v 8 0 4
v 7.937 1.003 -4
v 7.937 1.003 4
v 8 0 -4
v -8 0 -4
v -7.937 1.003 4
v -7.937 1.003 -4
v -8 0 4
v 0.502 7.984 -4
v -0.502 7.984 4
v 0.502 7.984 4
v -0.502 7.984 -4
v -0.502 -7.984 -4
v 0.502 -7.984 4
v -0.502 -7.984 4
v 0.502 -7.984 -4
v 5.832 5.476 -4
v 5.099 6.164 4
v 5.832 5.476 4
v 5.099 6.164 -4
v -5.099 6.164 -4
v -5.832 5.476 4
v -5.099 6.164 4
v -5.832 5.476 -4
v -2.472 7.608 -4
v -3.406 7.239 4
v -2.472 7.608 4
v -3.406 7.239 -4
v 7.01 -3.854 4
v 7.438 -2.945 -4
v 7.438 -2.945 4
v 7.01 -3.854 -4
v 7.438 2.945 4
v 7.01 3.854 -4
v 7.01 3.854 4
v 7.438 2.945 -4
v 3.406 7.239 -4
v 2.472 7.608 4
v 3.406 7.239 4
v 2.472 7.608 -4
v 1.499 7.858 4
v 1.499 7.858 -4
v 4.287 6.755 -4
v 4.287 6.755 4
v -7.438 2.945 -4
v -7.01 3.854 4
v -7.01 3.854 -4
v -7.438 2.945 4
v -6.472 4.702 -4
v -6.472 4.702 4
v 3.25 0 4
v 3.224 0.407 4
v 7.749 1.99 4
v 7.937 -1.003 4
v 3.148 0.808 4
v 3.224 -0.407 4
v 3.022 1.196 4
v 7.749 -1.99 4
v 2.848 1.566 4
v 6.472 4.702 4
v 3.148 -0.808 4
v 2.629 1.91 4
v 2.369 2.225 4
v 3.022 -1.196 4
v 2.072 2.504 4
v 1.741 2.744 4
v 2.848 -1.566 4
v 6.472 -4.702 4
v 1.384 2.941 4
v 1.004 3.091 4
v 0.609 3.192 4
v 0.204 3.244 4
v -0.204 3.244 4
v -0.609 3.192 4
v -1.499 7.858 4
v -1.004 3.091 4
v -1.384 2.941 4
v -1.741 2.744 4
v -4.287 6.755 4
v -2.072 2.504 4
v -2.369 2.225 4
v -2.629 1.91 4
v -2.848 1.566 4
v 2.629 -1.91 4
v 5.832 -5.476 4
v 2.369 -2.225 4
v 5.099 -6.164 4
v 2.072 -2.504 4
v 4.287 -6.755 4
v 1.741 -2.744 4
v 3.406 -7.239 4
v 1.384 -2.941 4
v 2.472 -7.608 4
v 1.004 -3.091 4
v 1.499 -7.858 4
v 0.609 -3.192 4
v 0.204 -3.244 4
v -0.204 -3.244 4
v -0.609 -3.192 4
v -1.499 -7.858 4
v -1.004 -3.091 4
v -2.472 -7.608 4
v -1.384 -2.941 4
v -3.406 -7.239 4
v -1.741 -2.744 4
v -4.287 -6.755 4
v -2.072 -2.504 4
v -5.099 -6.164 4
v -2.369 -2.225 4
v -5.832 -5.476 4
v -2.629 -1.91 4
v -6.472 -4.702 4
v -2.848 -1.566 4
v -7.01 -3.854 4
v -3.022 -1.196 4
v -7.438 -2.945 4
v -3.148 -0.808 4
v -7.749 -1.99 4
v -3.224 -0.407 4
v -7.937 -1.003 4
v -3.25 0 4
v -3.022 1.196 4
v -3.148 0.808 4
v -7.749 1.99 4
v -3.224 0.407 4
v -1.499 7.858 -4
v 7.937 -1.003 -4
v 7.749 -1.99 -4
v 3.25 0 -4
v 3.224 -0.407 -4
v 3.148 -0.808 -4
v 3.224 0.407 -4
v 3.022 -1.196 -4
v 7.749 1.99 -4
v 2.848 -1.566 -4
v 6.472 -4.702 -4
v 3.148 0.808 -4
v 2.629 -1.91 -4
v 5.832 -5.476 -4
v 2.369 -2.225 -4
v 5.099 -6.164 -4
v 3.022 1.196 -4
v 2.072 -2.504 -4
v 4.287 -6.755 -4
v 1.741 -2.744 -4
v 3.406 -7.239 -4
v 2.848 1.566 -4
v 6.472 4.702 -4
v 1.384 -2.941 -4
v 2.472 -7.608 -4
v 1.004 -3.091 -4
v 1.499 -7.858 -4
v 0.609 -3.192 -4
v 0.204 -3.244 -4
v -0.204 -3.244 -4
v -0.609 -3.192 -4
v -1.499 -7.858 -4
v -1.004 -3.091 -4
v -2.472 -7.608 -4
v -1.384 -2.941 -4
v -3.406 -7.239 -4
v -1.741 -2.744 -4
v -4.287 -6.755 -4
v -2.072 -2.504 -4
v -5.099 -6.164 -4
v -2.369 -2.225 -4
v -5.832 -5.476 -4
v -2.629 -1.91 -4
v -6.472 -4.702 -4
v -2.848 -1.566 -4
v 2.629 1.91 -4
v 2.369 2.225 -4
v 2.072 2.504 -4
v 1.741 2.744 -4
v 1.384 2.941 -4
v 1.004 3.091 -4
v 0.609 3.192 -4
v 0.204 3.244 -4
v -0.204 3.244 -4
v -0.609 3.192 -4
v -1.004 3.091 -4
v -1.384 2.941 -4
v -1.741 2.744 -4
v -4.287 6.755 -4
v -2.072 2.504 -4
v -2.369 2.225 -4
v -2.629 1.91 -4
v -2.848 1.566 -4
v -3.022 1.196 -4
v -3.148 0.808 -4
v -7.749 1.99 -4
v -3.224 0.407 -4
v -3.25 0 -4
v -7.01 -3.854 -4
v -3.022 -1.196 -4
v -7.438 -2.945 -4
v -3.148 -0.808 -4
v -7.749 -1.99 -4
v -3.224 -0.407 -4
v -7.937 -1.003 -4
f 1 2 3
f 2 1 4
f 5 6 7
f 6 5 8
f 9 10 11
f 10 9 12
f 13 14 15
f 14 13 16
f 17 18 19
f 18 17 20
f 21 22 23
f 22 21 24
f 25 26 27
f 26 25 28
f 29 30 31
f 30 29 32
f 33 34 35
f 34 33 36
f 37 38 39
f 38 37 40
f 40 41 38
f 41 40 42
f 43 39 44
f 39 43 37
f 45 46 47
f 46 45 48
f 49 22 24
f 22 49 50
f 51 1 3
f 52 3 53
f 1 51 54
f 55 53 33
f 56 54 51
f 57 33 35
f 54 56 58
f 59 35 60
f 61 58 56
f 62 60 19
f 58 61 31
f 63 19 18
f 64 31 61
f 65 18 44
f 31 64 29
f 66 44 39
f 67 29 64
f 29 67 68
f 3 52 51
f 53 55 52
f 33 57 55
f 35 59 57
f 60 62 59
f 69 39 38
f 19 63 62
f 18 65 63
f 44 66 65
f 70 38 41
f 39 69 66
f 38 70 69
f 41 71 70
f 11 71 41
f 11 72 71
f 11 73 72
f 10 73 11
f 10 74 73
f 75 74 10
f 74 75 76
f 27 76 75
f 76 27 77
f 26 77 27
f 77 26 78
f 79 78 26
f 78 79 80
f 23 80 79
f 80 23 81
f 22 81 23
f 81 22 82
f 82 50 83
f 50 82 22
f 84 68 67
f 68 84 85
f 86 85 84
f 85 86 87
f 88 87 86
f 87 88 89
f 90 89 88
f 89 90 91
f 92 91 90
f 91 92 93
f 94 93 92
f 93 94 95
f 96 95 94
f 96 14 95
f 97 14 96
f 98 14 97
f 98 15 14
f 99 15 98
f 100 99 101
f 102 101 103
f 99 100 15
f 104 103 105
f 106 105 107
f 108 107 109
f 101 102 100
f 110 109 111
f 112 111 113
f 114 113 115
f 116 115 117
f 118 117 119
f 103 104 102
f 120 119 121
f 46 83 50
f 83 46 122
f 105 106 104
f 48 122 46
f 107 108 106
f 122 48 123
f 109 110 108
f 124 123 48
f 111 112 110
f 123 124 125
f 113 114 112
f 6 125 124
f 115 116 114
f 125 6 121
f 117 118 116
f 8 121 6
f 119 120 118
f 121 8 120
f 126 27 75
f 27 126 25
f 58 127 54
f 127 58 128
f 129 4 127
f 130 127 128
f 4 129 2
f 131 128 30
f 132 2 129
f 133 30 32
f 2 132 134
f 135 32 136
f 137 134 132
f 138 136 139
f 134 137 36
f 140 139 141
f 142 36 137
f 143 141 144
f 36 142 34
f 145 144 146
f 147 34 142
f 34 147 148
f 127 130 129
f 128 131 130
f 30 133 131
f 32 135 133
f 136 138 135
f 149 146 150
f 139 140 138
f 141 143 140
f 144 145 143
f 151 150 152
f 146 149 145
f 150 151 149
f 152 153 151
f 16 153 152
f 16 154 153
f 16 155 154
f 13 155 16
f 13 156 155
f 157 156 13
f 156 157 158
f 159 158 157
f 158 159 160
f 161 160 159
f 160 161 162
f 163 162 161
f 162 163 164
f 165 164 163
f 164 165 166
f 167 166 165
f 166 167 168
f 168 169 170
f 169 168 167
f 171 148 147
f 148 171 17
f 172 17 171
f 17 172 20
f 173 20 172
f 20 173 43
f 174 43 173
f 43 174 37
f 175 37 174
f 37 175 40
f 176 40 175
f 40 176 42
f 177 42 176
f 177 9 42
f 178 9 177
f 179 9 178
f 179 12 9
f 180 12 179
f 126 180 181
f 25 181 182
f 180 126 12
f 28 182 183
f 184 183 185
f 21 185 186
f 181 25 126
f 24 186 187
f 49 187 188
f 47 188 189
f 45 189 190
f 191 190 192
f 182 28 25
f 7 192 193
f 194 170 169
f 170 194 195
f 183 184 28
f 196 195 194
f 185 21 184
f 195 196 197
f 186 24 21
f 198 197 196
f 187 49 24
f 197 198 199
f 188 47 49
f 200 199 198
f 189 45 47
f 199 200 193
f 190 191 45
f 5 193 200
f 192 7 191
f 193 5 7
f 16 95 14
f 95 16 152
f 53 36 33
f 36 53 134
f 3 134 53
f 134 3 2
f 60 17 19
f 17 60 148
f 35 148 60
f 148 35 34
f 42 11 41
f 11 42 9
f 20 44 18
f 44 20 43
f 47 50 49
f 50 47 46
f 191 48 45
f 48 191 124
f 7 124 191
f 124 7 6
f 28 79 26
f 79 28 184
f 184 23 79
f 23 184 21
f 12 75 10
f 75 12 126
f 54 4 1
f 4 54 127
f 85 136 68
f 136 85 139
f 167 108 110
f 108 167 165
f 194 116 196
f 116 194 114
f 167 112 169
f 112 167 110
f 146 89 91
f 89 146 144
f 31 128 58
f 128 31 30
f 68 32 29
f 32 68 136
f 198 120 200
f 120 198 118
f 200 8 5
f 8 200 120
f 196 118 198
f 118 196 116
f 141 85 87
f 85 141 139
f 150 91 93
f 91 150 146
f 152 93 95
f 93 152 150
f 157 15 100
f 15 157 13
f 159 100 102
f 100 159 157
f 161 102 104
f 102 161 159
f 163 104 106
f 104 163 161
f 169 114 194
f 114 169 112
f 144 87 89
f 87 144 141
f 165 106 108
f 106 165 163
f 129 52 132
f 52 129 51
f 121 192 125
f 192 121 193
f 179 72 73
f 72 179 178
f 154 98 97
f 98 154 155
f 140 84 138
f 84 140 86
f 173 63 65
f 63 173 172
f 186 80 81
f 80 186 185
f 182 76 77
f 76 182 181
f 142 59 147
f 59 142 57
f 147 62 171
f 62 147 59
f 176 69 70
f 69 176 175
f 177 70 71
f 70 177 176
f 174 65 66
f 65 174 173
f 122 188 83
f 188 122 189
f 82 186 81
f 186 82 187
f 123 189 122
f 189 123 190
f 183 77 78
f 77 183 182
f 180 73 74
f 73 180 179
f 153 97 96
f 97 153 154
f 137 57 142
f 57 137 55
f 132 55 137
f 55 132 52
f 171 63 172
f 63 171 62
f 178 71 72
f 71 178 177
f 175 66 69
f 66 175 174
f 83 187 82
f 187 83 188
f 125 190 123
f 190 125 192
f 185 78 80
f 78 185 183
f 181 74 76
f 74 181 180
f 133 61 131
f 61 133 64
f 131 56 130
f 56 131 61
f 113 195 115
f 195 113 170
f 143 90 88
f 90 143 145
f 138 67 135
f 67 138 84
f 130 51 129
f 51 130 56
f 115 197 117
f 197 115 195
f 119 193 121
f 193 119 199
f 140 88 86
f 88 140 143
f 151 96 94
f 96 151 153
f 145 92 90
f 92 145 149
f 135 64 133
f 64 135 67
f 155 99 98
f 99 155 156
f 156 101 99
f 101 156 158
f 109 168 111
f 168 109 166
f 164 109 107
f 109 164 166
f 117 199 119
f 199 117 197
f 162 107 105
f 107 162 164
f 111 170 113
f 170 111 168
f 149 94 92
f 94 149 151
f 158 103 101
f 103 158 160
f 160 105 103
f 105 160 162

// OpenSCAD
$fn = 50;


difference() {
	union() {
		translate(v = [0, 0, -4.0000000000]) {
			cylinder(h = 8, r = 8.0000000000);
		}
	}
	union() {
		translate(v = [0, 0, -100.0000000000]) {
			cylinder(h = 200, r = 3.2500000000);
		}
	}
}
